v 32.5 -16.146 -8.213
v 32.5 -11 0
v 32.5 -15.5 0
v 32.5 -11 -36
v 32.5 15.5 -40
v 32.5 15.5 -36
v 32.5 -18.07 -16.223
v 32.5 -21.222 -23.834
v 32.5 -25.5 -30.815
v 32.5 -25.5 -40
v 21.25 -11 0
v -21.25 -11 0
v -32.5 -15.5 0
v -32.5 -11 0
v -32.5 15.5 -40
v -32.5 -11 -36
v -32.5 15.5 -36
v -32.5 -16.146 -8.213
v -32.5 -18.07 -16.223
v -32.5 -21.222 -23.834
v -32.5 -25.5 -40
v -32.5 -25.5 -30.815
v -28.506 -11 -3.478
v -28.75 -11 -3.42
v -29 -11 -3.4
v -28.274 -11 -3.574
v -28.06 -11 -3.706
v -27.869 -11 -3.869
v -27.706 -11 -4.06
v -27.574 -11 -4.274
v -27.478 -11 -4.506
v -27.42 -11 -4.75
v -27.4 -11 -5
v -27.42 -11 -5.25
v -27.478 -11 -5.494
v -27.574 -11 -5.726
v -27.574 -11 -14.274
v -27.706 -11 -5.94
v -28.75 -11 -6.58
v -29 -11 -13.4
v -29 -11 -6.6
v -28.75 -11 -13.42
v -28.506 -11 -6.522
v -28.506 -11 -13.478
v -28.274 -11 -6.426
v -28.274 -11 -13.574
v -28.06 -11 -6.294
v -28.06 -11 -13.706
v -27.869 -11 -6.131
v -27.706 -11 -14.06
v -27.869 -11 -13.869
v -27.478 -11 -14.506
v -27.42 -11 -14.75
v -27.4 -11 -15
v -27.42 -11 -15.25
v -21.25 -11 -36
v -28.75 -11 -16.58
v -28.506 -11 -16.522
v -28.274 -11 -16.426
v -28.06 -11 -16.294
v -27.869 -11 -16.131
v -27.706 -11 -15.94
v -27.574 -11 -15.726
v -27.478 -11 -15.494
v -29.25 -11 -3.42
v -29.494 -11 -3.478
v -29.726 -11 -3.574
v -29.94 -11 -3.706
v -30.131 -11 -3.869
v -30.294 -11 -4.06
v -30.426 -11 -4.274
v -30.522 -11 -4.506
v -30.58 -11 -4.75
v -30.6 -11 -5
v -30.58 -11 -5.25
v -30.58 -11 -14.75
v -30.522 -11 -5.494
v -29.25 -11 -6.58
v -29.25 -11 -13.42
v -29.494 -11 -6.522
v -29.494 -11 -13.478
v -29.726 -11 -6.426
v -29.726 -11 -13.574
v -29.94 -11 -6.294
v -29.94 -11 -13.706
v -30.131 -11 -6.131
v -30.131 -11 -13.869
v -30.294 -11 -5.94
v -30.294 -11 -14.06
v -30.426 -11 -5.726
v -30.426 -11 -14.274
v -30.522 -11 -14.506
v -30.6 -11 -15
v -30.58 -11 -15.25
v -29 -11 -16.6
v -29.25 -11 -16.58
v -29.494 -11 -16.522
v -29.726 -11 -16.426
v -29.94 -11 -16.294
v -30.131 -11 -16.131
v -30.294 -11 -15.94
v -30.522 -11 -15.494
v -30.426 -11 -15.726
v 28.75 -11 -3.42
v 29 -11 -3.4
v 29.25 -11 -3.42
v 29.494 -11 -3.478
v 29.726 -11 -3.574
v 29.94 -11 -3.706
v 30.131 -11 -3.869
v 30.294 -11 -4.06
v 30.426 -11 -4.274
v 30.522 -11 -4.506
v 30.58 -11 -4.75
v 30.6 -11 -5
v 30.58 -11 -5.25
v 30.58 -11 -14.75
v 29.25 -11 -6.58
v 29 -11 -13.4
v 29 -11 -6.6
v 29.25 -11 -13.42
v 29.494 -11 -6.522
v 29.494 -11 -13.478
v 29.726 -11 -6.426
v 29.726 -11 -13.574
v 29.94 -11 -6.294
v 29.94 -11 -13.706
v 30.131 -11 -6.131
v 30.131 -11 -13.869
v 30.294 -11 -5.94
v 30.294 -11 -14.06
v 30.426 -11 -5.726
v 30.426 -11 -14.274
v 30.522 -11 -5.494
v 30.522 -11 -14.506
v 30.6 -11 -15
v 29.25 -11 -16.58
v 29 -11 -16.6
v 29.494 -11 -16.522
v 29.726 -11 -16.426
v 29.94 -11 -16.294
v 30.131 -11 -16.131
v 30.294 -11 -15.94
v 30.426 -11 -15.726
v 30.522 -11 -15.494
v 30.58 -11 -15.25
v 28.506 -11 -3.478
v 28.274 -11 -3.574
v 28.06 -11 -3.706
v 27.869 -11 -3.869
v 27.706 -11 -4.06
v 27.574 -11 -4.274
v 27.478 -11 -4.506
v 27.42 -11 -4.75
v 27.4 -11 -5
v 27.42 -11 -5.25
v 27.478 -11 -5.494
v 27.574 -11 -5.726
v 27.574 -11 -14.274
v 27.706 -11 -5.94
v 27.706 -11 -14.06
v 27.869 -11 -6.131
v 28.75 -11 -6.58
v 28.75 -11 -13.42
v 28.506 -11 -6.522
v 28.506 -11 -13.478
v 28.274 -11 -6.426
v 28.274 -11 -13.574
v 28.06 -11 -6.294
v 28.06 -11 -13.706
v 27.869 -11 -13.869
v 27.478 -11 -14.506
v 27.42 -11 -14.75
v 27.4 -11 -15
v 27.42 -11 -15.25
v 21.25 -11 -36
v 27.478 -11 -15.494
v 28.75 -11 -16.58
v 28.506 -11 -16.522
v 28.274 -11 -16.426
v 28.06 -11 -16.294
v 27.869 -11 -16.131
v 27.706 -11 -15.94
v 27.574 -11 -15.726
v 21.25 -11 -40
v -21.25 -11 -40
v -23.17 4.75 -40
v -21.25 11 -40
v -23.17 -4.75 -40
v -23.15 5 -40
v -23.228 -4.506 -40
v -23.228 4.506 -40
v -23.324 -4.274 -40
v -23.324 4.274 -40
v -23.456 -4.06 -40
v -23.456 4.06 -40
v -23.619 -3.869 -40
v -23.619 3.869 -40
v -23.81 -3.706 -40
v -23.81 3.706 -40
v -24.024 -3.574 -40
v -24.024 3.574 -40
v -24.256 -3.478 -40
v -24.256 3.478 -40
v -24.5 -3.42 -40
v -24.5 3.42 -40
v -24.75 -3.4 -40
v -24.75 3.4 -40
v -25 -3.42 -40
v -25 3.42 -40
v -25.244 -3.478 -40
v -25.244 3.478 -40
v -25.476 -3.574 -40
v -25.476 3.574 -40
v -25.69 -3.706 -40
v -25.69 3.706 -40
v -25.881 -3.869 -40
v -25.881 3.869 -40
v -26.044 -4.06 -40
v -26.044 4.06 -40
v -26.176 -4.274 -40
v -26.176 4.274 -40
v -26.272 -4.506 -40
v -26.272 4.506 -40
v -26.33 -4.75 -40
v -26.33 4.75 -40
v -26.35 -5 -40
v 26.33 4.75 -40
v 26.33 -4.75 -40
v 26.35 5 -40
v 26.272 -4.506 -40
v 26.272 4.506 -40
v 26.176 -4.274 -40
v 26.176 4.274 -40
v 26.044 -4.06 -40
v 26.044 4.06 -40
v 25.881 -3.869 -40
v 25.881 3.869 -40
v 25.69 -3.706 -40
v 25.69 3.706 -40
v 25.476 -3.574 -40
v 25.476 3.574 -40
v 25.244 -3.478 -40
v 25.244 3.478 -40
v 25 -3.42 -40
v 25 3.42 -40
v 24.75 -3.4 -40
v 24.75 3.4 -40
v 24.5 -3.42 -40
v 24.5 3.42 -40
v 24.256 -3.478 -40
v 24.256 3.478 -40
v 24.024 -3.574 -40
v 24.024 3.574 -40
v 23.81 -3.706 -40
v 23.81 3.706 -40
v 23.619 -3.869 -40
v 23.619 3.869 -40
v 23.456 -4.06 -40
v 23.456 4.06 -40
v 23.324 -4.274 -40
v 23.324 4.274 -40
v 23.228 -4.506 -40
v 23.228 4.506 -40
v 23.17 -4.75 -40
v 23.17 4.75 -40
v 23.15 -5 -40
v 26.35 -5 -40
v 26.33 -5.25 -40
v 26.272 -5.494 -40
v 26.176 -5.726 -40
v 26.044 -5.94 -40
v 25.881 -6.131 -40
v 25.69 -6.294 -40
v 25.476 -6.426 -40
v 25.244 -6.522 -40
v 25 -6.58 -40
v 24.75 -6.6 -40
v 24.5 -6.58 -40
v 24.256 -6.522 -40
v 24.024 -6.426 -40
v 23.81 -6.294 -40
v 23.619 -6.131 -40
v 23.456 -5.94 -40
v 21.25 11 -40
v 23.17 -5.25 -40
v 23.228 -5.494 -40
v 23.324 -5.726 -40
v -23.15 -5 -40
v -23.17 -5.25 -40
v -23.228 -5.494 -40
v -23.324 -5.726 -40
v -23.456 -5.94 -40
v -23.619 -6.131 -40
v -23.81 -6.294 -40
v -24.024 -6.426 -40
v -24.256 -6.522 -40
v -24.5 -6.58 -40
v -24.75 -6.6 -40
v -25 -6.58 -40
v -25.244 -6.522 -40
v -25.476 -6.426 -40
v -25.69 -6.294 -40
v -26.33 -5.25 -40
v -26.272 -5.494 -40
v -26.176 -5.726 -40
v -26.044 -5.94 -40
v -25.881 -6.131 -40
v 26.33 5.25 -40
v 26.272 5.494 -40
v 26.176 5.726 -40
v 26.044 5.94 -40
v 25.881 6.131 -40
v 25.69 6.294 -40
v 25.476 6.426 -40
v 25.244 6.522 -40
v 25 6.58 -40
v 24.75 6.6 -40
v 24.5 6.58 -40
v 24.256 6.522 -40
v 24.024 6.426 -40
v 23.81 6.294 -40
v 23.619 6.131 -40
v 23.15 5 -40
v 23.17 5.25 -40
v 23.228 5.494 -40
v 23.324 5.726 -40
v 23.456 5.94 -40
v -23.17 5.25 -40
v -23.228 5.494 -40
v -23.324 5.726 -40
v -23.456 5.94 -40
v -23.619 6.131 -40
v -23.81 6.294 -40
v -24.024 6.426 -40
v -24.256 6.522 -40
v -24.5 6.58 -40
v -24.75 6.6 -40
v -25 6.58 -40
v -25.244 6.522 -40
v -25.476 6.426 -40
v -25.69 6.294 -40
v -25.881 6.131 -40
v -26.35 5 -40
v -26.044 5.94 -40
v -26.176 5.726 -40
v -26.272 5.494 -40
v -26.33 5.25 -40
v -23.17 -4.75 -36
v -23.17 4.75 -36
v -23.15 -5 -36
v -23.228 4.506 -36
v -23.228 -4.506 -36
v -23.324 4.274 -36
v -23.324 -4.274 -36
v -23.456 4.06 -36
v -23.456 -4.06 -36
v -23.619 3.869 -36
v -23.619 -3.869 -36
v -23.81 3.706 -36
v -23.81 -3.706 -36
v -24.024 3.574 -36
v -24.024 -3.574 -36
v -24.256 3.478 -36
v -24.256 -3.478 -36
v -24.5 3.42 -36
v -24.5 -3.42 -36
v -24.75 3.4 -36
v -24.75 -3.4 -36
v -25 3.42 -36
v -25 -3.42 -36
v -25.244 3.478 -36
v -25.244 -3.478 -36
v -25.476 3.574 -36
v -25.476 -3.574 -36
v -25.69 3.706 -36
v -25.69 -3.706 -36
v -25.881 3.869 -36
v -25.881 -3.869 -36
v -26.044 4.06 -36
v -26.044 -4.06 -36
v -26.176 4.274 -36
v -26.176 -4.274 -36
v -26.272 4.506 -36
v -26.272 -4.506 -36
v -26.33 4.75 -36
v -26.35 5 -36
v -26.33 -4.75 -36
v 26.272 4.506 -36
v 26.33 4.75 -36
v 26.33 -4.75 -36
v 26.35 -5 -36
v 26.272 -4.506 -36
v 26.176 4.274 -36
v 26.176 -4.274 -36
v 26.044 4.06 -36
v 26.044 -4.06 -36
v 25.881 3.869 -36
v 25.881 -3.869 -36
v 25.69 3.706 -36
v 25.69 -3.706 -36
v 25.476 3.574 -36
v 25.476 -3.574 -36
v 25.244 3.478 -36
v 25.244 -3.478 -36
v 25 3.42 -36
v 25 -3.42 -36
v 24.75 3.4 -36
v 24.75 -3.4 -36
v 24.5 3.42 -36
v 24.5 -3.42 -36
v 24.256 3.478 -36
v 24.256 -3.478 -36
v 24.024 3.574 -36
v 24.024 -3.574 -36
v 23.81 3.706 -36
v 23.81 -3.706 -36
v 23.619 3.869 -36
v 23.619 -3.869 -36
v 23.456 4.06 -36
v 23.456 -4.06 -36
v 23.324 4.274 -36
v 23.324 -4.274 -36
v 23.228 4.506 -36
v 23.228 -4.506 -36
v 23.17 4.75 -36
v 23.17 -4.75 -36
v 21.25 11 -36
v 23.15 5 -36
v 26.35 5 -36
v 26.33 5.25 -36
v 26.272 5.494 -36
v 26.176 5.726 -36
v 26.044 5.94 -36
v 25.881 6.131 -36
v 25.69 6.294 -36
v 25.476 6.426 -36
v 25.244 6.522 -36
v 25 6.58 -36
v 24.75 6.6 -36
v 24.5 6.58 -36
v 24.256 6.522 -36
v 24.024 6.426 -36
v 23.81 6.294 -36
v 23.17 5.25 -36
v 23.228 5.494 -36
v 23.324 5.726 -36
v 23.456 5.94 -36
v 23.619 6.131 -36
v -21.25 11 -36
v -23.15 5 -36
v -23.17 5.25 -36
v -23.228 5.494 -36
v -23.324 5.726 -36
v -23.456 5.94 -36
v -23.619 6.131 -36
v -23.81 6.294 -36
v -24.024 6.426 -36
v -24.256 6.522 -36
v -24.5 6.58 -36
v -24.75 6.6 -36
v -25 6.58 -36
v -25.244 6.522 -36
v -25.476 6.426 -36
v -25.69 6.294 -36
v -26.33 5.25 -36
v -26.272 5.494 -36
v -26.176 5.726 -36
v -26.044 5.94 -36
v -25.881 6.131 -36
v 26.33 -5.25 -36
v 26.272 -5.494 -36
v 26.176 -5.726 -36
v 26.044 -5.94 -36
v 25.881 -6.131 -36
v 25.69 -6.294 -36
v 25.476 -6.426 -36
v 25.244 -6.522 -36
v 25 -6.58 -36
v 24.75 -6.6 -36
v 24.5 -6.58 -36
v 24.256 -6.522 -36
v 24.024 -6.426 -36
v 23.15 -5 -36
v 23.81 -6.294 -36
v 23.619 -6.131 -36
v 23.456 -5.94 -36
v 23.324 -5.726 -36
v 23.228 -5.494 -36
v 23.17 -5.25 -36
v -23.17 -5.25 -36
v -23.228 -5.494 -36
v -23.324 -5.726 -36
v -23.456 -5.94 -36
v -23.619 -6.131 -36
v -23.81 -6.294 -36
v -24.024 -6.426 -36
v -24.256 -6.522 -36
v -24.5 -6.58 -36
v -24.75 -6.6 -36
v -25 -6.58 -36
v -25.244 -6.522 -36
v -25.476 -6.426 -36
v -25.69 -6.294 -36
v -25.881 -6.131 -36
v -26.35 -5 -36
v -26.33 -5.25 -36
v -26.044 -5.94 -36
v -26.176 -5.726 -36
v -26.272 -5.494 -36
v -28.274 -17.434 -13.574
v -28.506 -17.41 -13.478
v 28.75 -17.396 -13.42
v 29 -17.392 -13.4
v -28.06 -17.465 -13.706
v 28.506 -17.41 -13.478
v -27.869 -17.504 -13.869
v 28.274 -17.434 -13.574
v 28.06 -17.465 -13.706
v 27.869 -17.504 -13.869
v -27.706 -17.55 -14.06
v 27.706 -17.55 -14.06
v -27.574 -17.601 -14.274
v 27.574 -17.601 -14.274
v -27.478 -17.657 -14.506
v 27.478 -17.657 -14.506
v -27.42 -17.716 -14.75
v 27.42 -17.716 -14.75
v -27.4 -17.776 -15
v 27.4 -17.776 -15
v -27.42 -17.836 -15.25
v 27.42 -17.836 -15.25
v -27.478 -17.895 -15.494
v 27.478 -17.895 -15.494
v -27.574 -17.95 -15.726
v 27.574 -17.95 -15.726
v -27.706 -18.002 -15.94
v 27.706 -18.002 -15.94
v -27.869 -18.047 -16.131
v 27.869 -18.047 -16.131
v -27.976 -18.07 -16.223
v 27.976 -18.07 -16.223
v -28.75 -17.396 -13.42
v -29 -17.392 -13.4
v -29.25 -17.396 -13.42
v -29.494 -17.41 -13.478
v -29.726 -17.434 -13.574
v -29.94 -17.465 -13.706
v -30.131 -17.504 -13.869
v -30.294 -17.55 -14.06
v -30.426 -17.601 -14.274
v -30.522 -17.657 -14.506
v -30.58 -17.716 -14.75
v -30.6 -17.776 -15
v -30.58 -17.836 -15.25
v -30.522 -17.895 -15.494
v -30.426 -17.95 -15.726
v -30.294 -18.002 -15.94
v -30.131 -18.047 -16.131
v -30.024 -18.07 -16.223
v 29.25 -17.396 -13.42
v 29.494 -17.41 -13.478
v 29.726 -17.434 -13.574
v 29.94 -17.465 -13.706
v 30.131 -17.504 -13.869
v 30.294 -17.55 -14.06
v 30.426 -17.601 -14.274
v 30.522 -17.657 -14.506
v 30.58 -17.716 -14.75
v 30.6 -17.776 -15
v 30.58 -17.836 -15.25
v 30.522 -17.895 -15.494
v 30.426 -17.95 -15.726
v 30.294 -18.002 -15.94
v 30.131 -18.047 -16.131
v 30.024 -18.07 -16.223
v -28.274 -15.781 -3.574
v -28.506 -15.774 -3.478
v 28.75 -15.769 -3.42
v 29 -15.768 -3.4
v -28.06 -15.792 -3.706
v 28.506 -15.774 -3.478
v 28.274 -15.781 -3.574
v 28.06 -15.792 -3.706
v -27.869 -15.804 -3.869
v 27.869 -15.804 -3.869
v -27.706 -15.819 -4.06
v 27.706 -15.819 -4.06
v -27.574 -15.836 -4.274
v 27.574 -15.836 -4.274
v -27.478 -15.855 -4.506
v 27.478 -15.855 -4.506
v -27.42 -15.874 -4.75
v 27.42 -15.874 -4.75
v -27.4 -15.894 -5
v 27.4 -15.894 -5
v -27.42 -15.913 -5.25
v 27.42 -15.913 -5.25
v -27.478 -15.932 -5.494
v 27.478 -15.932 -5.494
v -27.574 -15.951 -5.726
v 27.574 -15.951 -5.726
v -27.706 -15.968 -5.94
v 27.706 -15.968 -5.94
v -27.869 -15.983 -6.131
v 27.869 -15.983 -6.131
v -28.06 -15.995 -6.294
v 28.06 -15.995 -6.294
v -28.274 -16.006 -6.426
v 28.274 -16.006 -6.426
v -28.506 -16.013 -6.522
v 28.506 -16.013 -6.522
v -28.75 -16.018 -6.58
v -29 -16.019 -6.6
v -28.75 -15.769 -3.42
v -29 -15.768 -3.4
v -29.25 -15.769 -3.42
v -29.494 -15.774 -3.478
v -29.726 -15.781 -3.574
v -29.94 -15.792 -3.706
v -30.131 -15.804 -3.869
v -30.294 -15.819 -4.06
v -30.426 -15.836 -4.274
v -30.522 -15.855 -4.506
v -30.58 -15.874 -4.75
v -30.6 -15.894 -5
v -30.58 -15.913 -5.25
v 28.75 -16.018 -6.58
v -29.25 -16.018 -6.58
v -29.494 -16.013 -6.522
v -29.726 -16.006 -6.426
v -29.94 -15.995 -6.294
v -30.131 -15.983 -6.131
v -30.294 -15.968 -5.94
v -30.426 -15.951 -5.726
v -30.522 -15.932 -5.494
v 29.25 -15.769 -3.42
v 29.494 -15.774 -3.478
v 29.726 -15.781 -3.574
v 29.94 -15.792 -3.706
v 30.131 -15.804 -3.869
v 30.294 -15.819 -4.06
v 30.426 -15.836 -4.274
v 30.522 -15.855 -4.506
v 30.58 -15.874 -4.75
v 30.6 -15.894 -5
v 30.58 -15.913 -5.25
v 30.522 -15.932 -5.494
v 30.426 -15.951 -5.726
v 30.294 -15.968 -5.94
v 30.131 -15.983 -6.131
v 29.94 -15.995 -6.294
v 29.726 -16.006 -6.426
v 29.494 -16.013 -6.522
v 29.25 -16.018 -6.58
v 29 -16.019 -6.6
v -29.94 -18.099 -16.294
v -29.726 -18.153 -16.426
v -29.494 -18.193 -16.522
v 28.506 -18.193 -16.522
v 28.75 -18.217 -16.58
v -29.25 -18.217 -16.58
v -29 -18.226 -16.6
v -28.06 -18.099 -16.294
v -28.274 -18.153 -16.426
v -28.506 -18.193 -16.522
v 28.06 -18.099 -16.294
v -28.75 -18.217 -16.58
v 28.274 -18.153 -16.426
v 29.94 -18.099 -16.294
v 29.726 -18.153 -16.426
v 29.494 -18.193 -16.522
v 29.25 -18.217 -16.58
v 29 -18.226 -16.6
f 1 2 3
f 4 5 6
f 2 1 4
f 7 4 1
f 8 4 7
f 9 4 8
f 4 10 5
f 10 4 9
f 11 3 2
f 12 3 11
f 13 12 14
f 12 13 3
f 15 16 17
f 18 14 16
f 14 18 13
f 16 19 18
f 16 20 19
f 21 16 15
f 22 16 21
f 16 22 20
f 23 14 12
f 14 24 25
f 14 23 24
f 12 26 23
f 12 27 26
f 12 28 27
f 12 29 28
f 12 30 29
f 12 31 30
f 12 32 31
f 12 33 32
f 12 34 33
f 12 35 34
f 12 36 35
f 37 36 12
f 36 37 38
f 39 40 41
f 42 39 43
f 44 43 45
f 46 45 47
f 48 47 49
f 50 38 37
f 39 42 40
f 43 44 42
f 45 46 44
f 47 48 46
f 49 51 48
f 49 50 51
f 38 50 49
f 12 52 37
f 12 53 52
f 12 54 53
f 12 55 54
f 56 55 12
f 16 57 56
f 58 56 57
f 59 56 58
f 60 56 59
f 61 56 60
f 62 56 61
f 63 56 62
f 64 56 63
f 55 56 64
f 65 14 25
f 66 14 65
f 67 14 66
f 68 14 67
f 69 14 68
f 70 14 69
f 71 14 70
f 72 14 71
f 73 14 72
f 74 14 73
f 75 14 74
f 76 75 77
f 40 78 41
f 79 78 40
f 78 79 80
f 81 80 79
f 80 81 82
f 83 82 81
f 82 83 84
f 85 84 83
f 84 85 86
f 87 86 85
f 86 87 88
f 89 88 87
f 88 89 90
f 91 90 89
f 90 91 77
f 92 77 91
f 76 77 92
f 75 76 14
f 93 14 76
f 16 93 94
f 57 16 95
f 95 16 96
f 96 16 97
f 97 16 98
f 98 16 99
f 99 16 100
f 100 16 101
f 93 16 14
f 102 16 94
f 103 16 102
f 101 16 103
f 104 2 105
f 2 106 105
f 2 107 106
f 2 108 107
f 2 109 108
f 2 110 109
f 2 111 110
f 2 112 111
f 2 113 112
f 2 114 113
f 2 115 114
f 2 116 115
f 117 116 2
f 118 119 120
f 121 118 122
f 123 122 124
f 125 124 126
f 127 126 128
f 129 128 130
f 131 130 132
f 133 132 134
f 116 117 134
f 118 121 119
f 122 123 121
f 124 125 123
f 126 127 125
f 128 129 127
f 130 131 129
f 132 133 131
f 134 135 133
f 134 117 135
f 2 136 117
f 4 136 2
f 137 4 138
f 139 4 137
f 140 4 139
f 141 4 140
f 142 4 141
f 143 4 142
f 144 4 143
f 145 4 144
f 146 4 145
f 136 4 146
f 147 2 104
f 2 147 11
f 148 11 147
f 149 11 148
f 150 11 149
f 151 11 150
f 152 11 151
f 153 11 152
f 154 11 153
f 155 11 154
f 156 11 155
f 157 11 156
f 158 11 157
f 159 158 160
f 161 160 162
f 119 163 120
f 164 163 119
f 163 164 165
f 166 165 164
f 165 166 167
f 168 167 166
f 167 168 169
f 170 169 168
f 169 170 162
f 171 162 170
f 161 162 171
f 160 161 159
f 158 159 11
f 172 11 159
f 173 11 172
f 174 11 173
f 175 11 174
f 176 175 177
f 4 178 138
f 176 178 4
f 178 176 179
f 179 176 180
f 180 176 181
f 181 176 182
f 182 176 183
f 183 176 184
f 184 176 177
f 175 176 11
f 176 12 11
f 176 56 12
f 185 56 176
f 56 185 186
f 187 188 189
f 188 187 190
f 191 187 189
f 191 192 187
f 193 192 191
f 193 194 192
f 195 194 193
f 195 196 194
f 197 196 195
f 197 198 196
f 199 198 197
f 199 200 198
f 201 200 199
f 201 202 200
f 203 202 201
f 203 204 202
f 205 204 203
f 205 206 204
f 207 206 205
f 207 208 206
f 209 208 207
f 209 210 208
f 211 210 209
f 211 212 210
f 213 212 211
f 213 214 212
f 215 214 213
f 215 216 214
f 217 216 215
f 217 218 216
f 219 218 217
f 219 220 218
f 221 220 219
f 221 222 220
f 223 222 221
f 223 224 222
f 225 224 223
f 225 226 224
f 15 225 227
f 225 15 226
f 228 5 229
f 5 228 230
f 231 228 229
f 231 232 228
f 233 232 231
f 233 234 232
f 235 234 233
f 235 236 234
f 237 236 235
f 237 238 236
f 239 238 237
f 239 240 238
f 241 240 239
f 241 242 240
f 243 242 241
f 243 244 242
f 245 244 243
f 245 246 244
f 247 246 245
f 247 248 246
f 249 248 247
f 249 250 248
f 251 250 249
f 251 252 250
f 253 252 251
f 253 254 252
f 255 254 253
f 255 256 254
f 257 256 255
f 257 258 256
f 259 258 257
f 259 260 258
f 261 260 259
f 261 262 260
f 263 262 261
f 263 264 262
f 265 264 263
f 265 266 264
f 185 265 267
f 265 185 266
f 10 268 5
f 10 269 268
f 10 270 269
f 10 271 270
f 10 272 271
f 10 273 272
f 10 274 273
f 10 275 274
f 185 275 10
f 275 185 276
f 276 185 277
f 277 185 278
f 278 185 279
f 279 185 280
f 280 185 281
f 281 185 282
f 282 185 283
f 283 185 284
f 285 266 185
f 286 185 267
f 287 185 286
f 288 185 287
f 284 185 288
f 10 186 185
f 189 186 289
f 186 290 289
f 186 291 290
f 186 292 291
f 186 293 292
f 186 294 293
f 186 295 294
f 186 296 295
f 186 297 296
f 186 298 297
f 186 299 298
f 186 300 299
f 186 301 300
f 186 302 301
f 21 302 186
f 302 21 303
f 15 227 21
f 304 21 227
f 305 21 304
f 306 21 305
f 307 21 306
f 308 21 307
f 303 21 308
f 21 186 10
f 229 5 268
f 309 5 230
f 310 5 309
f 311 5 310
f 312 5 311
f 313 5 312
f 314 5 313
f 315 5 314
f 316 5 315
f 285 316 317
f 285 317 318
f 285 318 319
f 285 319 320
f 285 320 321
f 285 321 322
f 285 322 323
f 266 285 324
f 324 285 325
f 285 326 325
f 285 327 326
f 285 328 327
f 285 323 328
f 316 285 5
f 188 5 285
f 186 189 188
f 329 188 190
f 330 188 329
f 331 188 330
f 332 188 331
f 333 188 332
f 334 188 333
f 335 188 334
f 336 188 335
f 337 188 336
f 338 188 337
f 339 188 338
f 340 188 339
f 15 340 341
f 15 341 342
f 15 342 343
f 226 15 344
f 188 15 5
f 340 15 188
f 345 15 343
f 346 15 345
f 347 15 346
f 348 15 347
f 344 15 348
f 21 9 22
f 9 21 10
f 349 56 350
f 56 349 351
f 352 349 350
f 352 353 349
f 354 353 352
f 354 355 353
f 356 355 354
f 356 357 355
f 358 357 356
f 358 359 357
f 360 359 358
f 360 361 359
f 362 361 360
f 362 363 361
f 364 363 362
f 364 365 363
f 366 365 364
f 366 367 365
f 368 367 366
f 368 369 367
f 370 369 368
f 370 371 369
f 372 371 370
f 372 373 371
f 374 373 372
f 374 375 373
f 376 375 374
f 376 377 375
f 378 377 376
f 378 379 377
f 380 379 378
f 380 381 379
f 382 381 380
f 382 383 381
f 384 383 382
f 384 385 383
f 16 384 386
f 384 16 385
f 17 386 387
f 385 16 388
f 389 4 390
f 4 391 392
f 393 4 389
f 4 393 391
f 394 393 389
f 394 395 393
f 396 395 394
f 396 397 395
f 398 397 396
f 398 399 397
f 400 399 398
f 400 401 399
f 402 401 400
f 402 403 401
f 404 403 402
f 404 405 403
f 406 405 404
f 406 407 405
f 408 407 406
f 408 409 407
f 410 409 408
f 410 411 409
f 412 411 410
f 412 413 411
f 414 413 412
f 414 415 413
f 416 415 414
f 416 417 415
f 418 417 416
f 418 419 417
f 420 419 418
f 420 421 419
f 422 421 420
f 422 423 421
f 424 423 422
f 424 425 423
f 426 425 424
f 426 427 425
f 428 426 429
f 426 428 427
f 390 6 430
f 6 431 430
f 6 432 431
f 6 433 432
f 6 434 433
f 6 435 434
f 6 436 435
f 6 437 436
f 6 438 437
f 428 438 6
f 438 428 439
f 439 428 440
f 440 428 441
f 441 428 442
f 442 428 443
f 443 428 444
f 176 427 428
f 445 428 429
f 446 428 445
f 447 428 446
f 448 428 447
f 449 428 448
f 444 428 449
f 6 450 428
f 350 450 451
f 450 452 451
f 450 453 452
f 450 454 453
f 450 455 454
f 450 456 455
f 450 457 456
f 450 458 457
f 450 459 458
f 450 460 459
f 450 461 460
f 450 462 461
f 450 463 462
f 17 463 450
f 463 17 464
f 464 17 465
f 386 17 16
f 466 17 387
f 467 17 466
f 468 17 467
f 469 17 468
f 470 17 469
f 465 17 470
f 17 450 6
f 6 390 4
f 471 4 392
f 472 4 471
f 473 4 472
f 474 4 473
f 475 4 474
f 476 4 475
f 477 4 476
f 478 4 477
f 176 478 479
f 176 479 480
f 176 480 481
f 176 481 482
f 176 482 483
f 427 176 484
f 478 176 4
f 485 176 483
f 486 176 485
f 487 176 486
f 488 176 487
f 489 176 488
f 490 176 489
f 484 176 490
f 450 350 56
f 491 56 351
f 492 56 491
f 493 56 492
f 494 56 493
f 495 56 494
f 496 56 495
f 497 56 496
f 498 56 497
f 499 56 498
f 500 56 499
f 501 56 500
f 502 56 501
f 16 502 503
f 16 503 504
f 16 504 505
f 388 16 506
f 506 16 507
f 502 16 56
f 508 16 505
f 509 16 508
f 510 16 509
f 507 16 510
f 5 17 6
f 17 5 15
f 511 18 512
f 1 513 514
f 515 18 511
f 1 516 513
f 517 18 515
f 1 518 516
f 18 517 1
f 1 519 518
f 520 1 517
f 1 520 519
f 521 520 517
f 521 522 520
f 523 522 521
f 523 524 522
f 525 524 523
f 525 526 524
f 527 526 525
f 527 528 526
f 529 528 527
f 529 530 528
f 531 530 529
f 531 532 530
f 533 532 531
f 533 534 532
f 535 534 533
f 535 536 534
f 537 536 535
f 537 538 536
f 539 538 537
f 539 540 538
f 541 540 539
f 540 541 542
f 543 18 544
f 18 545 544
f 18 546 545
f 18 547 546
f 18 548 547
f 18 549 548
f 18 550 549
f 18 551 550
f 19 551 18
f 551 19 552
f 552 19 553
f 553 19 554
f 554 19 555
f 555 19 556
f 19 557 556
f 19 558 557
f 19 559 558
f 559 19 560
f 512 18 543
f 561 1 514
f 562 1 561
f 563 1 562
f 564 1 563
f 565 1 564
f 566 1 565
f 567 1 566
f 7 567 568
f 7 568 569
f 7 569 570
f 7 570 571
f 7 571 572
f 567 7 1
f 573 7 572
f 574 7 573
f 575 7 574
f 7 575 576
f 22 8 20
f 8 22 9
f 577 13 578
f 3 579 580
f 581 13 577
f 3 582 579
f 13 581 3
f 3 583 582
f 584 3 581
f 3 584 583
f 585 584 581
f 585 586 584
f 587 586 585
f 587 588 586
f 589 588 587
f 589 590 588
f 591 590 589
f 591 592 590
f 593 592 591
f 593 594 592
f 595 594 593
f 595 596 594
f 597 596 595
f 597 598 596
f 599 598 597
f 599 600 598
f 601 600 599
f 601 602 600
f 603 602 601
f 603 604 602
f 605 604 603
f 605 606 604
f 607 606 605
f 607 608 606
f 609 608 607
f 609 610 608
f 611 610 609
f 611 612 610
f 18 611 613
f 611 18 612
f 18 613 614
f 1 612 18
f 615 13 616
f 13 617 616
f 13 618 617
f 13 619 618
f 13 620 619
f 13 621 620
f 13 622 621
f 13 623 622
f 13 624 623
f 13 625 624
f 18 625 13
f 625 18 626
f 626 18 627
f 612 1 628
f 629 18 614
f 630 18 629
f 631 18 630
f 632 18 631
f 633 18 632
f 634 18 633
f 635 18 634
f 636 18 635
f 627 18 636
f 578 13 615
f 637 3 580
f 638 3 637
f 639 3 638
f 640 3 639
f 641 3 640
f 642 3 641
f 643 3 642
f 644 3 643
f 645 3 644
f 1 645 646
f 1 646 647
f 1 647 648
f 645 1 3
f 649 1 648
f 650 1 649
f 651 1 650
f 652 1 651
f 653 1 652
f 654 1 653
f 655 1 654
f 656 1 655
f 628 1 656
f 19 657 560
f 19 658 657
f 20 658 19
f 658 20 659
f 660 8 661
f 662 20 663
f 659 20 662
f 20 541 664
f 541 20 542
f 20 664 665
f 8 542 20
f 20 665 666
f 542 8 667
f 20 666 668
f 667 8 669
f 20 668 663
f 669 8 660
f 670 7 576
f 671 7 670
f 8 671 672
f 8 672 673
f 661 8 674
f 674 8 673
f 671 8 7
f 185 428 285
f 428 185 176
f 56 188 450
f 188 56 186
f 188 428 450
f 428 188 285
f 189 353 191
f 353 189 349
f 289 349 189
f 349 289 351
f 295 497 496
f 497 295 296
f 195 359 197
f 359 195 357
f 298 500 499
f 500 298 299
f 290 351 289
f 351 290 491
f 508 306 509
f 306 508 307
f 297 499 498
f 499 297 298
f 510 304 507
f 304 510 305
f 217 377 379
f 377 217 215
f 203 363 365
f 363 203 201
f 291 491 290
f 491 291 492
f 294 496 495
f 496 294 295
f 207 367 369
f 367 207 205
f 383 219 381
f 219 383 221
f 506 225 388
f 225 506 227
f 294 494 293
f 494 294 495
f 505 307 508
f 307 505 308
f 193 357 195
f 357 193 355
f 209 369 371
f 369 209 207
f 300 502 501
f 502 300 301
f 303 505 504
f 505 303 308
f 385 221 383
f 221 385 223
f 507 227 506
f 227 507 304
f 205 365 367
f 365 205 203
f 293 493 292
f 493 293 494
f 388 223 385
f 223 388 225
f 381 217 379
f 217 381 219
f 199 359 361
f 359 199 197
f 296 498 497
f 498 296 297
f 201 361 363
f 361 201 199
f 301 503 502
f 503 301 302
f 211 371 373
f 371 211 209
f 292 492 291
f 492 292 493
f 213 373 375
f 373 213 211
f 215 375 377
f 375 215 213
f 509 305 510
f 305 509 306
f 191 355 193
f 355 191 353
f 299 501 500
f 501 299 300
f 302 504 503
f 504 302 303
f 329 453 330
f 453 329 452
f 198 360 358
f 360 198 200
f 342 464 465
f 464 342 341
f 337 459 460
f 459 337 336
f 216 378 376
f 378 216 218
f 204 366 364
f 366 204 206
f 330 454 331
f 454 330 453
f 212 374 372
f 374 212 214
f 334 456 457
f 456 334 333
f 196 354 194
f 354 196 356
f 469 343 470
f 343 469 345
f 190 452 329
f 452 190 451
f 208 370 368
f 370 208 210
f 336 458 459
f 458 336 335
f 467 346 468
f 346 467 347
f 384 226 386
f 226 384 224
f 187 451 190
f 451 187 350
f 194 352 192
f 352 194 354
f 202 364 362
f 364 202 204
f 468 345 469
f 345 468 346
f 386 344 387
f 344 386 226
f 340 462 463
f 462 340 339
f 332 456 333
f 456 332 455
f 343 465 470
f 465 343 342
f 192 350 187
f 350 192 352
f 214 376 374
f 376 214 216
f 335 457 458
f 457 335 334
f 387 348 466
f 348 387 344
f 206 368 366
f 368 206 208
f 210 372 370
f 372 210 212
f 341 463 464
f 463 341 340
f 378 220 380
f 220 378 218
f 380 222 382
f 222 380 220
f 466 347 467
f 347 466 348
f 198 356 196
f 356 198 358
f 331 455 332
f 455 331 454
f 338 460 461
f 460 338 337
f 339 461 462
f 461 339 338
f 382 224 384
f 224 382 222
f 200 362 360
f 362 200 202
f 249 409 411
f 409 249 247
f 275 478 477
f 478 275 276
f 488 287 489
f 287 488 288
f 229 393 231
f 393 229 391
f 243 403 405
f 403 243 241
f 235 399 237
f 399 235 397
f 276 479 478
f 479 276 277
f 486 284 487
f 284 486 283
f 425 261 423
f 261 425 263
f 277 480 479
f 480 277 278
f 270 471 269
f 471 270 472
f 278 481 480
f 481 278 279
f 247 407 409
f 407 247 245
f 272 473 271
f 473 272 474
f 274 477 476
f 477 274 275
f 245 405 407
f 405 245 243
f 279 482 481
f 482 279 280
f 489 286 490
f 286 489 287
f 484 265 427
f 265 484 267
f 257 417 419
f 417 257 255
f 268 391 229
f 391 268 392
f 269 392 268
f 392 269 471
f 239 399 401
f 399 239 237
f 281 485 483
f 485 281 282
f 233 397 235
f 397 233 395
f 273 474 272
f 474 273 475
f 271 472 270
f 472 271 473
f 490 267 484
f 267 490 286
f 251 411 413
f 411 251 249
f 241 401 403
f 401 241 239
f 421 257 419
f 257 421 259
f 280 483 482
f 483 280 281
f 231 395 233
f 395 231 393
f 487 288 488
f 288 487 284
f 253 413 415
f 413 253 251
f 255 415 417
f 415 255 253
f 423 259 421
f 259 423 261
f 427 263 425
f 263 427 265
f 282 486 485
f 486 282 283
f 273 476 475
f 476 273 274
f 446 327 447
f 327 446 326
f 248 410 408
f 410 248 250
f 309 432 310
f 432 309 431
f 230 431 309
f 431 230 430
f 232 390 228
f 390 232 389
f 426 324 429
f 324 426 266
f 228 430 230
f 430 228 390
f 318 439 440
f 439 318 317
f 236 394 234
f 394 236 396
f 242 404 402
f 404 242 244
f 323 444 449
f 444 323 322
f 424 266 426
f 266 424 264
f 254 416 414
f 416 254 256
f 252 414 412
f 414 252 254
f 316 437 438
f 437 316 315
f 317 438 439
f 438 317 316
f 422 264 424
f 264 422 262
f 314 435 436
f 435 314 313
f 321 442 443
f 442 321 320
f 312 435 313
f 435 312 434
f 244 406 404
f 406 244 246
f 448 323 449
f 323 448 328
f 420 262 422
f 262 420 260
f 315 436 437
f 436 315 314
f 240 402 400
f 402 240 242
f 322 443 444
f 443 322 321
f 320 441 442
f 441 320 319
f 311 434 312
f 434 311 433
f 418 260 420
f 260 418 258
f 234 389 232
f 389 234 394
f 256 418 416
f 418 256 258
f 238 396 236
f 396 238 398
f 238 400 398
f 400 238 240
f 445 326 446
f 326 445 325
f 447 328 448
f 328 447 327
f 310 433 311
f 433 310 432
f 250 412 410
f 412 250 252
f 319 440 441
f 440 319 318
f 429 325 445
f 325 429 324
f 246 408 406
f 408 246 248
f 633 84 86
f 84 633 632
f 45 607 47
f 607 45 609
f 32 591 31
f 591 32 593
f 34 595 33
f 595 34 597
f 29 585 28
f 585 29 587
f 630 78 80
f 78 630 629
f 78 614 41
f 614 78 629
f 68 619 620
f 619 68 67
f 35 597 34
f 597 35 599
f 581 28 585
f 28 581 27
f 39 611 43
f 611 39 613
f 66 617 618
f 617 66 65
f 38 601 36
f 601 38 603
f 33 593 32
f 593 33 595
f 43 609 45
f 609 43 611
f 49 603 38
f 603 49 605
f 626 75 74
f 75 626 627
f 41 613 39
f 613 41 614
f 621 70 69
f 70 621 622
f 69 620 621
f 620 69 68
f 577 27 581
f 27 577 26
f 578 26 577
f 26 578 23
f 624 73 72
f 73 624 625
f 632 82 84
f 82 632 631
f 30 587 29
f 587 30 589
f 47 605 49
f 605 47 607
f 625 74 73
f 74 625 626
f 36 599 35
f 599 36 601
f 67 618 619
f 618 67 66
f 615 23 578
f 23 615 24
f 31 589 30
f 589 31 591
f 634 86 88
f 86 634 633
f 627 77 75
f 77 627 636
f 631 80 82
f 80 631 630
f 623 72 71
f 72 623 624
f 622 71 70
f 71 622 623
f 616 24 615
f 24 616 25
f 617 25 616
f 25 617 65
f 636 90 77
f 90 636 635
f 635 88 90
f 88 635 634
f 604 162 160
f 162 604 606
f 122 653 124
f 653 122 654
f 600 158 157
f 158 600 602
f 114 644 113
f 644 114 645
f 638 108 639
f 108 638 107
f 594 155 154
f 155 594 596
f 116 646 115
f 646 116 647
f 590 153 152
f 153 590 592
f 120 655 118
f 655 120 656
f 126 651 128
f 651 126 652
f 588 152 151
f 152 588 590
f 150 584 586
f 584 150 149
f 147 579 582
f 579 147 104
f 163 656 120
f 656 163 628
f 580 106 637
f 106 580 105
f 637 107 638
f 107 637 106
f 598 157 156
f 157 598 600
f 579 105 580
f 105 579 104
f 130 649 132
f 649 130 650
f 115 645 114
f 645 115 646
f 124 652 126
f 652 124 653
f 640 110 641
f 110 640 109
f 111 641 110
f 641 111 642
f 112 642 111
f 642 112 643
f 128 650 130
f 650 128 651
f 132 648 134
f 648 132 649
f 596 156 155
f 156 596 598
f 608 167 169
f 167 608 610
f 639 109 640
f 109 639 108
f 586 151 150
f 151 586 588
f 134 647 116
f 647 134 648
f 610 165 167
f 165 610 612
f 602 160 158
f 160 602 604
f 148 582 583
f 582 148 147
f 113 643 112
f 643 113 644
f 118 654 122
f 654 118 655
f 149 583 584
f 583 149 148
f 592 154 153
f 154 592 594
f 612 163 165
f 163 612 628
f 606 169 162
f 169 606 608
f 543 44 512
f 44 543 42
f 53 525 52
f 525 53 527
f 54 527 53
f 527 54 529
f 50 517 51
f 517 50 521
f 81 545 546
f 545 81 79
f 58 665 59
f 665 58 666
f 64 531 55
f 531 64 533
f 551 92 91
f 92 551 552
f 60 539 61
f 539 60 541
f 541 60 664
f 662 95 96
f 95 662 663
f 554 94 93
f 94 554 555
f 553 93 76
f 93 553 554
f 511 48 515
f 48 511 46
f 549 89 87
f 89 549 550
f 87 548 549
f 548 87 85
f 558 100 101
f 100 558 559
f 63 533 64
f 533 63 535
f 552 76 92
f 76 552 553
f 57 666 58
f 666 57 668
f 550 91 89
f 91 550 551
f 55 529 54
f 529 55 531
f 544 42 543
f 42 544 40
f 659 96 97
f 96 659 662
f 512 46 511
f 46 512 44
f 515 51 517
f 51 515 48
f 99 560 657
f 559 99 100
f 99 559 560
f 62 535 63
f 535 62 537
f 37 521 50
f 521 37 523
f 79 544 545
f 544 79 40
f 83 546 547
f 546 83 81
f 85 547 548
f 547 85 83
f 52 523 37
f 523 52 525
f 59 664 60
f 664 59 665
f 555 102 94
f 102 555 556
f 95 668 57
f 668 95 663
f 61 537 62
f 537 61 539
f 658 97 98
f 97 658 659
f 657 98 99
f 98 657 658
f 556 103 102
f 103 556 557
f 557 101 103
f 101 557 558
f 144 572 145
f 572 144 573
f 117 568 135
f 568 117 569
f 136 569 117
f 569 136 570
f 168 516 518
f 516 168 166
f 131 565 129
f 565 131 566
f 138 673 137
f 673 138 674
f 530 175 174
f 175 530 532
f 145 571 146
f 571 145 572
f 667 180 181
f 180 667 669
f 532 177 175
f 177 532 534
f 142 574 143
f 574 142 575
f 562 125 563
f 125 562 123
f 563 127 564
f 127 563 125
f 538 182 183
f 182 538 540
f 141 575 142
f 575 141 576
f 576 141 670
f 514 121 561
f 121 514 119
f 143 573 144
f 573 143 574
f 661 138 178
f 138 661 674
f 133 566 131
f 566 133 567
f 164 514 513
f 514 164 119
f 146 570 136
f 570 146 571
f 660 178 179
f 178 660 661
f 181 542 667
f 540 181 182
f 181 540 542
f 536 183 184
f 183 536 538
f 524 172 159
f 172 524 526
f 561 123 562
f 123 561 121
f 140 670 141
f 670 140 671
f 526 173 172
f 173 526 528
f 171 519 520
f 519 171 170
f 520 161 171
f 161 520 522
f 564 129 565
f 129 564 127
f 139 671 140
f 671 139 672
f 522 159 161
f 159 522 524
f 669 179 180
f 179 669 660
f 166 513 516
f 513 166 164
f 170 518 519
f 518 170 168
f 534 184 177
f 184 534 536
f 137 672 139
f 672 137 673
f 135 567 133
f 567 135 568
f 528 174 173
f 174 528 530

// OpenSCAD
module pepernoten_servo_aansluiting() {
    difference() {
        
        
        union() {

            translate([-65/2, -31/2, -(110-19-19)/2]){
                cube([65, 4.5, (110-19-19)/2], center=false);
            }

            translate([-65/2, -31/2-10, -(110-19-19+8)/2]){
                cube([65, 4.5+10, (110-19-19+8)/2], center=false);
            }


            translate([-65/2, -31/2, -(110-19-19)/2-4])
                cube([65, 31, 4]);


            

        }    

            translate([0, -68, 0])
            rotate([0, 90, 0]) 
                cylinder(h=1000, d=105, center=true, $fn=40);

        

        // Opening voor servo body
        translate([0, 0, 0])
            cube([42.5, 22, 1000], center=true);

        // 4 montagegaten
        translate([-49.5/2, -10/2, 0])
            cylinder(h=1000, d=3.2, center=true, $fn=40);

        translate([-49.5/2,  10/2, 0])
            cylinder(h=1000, d=3.2, center=true, $fn=40);

        translate([ 49.5/2, -10/2, 0])
            cylinder(h=1000, d=3.2, center=true, $fn=40);

        translate([ 49.5/2,  10/2, 0])
            cylinder(h=1000, d=3.2, center=true, $fn=40);



        translate([-29, -10/2, -5])
        rotate([90, 0, 0]) 
            cylinder(h=1000, d=3.2, center=true, $fn=40);

        translate([29, -10/2, -5])
        rotate([90, 0, 0]) 
            cylinder(h=1000, d=3.2, center=true, $fn=40);

        translate([-29, -10/2, -15])
        rotate([90, 0, 0]) 
            cylinder(h=1000, d=3.2, center=true, $fn=40);


        translate([29, -10/2, -15])
        rotate([90, 0, 0]) 
            cylinder(h=1000, d=3.2, center=true, $fn=40);


    }
}

pepernoten_servo_aansluiting();
